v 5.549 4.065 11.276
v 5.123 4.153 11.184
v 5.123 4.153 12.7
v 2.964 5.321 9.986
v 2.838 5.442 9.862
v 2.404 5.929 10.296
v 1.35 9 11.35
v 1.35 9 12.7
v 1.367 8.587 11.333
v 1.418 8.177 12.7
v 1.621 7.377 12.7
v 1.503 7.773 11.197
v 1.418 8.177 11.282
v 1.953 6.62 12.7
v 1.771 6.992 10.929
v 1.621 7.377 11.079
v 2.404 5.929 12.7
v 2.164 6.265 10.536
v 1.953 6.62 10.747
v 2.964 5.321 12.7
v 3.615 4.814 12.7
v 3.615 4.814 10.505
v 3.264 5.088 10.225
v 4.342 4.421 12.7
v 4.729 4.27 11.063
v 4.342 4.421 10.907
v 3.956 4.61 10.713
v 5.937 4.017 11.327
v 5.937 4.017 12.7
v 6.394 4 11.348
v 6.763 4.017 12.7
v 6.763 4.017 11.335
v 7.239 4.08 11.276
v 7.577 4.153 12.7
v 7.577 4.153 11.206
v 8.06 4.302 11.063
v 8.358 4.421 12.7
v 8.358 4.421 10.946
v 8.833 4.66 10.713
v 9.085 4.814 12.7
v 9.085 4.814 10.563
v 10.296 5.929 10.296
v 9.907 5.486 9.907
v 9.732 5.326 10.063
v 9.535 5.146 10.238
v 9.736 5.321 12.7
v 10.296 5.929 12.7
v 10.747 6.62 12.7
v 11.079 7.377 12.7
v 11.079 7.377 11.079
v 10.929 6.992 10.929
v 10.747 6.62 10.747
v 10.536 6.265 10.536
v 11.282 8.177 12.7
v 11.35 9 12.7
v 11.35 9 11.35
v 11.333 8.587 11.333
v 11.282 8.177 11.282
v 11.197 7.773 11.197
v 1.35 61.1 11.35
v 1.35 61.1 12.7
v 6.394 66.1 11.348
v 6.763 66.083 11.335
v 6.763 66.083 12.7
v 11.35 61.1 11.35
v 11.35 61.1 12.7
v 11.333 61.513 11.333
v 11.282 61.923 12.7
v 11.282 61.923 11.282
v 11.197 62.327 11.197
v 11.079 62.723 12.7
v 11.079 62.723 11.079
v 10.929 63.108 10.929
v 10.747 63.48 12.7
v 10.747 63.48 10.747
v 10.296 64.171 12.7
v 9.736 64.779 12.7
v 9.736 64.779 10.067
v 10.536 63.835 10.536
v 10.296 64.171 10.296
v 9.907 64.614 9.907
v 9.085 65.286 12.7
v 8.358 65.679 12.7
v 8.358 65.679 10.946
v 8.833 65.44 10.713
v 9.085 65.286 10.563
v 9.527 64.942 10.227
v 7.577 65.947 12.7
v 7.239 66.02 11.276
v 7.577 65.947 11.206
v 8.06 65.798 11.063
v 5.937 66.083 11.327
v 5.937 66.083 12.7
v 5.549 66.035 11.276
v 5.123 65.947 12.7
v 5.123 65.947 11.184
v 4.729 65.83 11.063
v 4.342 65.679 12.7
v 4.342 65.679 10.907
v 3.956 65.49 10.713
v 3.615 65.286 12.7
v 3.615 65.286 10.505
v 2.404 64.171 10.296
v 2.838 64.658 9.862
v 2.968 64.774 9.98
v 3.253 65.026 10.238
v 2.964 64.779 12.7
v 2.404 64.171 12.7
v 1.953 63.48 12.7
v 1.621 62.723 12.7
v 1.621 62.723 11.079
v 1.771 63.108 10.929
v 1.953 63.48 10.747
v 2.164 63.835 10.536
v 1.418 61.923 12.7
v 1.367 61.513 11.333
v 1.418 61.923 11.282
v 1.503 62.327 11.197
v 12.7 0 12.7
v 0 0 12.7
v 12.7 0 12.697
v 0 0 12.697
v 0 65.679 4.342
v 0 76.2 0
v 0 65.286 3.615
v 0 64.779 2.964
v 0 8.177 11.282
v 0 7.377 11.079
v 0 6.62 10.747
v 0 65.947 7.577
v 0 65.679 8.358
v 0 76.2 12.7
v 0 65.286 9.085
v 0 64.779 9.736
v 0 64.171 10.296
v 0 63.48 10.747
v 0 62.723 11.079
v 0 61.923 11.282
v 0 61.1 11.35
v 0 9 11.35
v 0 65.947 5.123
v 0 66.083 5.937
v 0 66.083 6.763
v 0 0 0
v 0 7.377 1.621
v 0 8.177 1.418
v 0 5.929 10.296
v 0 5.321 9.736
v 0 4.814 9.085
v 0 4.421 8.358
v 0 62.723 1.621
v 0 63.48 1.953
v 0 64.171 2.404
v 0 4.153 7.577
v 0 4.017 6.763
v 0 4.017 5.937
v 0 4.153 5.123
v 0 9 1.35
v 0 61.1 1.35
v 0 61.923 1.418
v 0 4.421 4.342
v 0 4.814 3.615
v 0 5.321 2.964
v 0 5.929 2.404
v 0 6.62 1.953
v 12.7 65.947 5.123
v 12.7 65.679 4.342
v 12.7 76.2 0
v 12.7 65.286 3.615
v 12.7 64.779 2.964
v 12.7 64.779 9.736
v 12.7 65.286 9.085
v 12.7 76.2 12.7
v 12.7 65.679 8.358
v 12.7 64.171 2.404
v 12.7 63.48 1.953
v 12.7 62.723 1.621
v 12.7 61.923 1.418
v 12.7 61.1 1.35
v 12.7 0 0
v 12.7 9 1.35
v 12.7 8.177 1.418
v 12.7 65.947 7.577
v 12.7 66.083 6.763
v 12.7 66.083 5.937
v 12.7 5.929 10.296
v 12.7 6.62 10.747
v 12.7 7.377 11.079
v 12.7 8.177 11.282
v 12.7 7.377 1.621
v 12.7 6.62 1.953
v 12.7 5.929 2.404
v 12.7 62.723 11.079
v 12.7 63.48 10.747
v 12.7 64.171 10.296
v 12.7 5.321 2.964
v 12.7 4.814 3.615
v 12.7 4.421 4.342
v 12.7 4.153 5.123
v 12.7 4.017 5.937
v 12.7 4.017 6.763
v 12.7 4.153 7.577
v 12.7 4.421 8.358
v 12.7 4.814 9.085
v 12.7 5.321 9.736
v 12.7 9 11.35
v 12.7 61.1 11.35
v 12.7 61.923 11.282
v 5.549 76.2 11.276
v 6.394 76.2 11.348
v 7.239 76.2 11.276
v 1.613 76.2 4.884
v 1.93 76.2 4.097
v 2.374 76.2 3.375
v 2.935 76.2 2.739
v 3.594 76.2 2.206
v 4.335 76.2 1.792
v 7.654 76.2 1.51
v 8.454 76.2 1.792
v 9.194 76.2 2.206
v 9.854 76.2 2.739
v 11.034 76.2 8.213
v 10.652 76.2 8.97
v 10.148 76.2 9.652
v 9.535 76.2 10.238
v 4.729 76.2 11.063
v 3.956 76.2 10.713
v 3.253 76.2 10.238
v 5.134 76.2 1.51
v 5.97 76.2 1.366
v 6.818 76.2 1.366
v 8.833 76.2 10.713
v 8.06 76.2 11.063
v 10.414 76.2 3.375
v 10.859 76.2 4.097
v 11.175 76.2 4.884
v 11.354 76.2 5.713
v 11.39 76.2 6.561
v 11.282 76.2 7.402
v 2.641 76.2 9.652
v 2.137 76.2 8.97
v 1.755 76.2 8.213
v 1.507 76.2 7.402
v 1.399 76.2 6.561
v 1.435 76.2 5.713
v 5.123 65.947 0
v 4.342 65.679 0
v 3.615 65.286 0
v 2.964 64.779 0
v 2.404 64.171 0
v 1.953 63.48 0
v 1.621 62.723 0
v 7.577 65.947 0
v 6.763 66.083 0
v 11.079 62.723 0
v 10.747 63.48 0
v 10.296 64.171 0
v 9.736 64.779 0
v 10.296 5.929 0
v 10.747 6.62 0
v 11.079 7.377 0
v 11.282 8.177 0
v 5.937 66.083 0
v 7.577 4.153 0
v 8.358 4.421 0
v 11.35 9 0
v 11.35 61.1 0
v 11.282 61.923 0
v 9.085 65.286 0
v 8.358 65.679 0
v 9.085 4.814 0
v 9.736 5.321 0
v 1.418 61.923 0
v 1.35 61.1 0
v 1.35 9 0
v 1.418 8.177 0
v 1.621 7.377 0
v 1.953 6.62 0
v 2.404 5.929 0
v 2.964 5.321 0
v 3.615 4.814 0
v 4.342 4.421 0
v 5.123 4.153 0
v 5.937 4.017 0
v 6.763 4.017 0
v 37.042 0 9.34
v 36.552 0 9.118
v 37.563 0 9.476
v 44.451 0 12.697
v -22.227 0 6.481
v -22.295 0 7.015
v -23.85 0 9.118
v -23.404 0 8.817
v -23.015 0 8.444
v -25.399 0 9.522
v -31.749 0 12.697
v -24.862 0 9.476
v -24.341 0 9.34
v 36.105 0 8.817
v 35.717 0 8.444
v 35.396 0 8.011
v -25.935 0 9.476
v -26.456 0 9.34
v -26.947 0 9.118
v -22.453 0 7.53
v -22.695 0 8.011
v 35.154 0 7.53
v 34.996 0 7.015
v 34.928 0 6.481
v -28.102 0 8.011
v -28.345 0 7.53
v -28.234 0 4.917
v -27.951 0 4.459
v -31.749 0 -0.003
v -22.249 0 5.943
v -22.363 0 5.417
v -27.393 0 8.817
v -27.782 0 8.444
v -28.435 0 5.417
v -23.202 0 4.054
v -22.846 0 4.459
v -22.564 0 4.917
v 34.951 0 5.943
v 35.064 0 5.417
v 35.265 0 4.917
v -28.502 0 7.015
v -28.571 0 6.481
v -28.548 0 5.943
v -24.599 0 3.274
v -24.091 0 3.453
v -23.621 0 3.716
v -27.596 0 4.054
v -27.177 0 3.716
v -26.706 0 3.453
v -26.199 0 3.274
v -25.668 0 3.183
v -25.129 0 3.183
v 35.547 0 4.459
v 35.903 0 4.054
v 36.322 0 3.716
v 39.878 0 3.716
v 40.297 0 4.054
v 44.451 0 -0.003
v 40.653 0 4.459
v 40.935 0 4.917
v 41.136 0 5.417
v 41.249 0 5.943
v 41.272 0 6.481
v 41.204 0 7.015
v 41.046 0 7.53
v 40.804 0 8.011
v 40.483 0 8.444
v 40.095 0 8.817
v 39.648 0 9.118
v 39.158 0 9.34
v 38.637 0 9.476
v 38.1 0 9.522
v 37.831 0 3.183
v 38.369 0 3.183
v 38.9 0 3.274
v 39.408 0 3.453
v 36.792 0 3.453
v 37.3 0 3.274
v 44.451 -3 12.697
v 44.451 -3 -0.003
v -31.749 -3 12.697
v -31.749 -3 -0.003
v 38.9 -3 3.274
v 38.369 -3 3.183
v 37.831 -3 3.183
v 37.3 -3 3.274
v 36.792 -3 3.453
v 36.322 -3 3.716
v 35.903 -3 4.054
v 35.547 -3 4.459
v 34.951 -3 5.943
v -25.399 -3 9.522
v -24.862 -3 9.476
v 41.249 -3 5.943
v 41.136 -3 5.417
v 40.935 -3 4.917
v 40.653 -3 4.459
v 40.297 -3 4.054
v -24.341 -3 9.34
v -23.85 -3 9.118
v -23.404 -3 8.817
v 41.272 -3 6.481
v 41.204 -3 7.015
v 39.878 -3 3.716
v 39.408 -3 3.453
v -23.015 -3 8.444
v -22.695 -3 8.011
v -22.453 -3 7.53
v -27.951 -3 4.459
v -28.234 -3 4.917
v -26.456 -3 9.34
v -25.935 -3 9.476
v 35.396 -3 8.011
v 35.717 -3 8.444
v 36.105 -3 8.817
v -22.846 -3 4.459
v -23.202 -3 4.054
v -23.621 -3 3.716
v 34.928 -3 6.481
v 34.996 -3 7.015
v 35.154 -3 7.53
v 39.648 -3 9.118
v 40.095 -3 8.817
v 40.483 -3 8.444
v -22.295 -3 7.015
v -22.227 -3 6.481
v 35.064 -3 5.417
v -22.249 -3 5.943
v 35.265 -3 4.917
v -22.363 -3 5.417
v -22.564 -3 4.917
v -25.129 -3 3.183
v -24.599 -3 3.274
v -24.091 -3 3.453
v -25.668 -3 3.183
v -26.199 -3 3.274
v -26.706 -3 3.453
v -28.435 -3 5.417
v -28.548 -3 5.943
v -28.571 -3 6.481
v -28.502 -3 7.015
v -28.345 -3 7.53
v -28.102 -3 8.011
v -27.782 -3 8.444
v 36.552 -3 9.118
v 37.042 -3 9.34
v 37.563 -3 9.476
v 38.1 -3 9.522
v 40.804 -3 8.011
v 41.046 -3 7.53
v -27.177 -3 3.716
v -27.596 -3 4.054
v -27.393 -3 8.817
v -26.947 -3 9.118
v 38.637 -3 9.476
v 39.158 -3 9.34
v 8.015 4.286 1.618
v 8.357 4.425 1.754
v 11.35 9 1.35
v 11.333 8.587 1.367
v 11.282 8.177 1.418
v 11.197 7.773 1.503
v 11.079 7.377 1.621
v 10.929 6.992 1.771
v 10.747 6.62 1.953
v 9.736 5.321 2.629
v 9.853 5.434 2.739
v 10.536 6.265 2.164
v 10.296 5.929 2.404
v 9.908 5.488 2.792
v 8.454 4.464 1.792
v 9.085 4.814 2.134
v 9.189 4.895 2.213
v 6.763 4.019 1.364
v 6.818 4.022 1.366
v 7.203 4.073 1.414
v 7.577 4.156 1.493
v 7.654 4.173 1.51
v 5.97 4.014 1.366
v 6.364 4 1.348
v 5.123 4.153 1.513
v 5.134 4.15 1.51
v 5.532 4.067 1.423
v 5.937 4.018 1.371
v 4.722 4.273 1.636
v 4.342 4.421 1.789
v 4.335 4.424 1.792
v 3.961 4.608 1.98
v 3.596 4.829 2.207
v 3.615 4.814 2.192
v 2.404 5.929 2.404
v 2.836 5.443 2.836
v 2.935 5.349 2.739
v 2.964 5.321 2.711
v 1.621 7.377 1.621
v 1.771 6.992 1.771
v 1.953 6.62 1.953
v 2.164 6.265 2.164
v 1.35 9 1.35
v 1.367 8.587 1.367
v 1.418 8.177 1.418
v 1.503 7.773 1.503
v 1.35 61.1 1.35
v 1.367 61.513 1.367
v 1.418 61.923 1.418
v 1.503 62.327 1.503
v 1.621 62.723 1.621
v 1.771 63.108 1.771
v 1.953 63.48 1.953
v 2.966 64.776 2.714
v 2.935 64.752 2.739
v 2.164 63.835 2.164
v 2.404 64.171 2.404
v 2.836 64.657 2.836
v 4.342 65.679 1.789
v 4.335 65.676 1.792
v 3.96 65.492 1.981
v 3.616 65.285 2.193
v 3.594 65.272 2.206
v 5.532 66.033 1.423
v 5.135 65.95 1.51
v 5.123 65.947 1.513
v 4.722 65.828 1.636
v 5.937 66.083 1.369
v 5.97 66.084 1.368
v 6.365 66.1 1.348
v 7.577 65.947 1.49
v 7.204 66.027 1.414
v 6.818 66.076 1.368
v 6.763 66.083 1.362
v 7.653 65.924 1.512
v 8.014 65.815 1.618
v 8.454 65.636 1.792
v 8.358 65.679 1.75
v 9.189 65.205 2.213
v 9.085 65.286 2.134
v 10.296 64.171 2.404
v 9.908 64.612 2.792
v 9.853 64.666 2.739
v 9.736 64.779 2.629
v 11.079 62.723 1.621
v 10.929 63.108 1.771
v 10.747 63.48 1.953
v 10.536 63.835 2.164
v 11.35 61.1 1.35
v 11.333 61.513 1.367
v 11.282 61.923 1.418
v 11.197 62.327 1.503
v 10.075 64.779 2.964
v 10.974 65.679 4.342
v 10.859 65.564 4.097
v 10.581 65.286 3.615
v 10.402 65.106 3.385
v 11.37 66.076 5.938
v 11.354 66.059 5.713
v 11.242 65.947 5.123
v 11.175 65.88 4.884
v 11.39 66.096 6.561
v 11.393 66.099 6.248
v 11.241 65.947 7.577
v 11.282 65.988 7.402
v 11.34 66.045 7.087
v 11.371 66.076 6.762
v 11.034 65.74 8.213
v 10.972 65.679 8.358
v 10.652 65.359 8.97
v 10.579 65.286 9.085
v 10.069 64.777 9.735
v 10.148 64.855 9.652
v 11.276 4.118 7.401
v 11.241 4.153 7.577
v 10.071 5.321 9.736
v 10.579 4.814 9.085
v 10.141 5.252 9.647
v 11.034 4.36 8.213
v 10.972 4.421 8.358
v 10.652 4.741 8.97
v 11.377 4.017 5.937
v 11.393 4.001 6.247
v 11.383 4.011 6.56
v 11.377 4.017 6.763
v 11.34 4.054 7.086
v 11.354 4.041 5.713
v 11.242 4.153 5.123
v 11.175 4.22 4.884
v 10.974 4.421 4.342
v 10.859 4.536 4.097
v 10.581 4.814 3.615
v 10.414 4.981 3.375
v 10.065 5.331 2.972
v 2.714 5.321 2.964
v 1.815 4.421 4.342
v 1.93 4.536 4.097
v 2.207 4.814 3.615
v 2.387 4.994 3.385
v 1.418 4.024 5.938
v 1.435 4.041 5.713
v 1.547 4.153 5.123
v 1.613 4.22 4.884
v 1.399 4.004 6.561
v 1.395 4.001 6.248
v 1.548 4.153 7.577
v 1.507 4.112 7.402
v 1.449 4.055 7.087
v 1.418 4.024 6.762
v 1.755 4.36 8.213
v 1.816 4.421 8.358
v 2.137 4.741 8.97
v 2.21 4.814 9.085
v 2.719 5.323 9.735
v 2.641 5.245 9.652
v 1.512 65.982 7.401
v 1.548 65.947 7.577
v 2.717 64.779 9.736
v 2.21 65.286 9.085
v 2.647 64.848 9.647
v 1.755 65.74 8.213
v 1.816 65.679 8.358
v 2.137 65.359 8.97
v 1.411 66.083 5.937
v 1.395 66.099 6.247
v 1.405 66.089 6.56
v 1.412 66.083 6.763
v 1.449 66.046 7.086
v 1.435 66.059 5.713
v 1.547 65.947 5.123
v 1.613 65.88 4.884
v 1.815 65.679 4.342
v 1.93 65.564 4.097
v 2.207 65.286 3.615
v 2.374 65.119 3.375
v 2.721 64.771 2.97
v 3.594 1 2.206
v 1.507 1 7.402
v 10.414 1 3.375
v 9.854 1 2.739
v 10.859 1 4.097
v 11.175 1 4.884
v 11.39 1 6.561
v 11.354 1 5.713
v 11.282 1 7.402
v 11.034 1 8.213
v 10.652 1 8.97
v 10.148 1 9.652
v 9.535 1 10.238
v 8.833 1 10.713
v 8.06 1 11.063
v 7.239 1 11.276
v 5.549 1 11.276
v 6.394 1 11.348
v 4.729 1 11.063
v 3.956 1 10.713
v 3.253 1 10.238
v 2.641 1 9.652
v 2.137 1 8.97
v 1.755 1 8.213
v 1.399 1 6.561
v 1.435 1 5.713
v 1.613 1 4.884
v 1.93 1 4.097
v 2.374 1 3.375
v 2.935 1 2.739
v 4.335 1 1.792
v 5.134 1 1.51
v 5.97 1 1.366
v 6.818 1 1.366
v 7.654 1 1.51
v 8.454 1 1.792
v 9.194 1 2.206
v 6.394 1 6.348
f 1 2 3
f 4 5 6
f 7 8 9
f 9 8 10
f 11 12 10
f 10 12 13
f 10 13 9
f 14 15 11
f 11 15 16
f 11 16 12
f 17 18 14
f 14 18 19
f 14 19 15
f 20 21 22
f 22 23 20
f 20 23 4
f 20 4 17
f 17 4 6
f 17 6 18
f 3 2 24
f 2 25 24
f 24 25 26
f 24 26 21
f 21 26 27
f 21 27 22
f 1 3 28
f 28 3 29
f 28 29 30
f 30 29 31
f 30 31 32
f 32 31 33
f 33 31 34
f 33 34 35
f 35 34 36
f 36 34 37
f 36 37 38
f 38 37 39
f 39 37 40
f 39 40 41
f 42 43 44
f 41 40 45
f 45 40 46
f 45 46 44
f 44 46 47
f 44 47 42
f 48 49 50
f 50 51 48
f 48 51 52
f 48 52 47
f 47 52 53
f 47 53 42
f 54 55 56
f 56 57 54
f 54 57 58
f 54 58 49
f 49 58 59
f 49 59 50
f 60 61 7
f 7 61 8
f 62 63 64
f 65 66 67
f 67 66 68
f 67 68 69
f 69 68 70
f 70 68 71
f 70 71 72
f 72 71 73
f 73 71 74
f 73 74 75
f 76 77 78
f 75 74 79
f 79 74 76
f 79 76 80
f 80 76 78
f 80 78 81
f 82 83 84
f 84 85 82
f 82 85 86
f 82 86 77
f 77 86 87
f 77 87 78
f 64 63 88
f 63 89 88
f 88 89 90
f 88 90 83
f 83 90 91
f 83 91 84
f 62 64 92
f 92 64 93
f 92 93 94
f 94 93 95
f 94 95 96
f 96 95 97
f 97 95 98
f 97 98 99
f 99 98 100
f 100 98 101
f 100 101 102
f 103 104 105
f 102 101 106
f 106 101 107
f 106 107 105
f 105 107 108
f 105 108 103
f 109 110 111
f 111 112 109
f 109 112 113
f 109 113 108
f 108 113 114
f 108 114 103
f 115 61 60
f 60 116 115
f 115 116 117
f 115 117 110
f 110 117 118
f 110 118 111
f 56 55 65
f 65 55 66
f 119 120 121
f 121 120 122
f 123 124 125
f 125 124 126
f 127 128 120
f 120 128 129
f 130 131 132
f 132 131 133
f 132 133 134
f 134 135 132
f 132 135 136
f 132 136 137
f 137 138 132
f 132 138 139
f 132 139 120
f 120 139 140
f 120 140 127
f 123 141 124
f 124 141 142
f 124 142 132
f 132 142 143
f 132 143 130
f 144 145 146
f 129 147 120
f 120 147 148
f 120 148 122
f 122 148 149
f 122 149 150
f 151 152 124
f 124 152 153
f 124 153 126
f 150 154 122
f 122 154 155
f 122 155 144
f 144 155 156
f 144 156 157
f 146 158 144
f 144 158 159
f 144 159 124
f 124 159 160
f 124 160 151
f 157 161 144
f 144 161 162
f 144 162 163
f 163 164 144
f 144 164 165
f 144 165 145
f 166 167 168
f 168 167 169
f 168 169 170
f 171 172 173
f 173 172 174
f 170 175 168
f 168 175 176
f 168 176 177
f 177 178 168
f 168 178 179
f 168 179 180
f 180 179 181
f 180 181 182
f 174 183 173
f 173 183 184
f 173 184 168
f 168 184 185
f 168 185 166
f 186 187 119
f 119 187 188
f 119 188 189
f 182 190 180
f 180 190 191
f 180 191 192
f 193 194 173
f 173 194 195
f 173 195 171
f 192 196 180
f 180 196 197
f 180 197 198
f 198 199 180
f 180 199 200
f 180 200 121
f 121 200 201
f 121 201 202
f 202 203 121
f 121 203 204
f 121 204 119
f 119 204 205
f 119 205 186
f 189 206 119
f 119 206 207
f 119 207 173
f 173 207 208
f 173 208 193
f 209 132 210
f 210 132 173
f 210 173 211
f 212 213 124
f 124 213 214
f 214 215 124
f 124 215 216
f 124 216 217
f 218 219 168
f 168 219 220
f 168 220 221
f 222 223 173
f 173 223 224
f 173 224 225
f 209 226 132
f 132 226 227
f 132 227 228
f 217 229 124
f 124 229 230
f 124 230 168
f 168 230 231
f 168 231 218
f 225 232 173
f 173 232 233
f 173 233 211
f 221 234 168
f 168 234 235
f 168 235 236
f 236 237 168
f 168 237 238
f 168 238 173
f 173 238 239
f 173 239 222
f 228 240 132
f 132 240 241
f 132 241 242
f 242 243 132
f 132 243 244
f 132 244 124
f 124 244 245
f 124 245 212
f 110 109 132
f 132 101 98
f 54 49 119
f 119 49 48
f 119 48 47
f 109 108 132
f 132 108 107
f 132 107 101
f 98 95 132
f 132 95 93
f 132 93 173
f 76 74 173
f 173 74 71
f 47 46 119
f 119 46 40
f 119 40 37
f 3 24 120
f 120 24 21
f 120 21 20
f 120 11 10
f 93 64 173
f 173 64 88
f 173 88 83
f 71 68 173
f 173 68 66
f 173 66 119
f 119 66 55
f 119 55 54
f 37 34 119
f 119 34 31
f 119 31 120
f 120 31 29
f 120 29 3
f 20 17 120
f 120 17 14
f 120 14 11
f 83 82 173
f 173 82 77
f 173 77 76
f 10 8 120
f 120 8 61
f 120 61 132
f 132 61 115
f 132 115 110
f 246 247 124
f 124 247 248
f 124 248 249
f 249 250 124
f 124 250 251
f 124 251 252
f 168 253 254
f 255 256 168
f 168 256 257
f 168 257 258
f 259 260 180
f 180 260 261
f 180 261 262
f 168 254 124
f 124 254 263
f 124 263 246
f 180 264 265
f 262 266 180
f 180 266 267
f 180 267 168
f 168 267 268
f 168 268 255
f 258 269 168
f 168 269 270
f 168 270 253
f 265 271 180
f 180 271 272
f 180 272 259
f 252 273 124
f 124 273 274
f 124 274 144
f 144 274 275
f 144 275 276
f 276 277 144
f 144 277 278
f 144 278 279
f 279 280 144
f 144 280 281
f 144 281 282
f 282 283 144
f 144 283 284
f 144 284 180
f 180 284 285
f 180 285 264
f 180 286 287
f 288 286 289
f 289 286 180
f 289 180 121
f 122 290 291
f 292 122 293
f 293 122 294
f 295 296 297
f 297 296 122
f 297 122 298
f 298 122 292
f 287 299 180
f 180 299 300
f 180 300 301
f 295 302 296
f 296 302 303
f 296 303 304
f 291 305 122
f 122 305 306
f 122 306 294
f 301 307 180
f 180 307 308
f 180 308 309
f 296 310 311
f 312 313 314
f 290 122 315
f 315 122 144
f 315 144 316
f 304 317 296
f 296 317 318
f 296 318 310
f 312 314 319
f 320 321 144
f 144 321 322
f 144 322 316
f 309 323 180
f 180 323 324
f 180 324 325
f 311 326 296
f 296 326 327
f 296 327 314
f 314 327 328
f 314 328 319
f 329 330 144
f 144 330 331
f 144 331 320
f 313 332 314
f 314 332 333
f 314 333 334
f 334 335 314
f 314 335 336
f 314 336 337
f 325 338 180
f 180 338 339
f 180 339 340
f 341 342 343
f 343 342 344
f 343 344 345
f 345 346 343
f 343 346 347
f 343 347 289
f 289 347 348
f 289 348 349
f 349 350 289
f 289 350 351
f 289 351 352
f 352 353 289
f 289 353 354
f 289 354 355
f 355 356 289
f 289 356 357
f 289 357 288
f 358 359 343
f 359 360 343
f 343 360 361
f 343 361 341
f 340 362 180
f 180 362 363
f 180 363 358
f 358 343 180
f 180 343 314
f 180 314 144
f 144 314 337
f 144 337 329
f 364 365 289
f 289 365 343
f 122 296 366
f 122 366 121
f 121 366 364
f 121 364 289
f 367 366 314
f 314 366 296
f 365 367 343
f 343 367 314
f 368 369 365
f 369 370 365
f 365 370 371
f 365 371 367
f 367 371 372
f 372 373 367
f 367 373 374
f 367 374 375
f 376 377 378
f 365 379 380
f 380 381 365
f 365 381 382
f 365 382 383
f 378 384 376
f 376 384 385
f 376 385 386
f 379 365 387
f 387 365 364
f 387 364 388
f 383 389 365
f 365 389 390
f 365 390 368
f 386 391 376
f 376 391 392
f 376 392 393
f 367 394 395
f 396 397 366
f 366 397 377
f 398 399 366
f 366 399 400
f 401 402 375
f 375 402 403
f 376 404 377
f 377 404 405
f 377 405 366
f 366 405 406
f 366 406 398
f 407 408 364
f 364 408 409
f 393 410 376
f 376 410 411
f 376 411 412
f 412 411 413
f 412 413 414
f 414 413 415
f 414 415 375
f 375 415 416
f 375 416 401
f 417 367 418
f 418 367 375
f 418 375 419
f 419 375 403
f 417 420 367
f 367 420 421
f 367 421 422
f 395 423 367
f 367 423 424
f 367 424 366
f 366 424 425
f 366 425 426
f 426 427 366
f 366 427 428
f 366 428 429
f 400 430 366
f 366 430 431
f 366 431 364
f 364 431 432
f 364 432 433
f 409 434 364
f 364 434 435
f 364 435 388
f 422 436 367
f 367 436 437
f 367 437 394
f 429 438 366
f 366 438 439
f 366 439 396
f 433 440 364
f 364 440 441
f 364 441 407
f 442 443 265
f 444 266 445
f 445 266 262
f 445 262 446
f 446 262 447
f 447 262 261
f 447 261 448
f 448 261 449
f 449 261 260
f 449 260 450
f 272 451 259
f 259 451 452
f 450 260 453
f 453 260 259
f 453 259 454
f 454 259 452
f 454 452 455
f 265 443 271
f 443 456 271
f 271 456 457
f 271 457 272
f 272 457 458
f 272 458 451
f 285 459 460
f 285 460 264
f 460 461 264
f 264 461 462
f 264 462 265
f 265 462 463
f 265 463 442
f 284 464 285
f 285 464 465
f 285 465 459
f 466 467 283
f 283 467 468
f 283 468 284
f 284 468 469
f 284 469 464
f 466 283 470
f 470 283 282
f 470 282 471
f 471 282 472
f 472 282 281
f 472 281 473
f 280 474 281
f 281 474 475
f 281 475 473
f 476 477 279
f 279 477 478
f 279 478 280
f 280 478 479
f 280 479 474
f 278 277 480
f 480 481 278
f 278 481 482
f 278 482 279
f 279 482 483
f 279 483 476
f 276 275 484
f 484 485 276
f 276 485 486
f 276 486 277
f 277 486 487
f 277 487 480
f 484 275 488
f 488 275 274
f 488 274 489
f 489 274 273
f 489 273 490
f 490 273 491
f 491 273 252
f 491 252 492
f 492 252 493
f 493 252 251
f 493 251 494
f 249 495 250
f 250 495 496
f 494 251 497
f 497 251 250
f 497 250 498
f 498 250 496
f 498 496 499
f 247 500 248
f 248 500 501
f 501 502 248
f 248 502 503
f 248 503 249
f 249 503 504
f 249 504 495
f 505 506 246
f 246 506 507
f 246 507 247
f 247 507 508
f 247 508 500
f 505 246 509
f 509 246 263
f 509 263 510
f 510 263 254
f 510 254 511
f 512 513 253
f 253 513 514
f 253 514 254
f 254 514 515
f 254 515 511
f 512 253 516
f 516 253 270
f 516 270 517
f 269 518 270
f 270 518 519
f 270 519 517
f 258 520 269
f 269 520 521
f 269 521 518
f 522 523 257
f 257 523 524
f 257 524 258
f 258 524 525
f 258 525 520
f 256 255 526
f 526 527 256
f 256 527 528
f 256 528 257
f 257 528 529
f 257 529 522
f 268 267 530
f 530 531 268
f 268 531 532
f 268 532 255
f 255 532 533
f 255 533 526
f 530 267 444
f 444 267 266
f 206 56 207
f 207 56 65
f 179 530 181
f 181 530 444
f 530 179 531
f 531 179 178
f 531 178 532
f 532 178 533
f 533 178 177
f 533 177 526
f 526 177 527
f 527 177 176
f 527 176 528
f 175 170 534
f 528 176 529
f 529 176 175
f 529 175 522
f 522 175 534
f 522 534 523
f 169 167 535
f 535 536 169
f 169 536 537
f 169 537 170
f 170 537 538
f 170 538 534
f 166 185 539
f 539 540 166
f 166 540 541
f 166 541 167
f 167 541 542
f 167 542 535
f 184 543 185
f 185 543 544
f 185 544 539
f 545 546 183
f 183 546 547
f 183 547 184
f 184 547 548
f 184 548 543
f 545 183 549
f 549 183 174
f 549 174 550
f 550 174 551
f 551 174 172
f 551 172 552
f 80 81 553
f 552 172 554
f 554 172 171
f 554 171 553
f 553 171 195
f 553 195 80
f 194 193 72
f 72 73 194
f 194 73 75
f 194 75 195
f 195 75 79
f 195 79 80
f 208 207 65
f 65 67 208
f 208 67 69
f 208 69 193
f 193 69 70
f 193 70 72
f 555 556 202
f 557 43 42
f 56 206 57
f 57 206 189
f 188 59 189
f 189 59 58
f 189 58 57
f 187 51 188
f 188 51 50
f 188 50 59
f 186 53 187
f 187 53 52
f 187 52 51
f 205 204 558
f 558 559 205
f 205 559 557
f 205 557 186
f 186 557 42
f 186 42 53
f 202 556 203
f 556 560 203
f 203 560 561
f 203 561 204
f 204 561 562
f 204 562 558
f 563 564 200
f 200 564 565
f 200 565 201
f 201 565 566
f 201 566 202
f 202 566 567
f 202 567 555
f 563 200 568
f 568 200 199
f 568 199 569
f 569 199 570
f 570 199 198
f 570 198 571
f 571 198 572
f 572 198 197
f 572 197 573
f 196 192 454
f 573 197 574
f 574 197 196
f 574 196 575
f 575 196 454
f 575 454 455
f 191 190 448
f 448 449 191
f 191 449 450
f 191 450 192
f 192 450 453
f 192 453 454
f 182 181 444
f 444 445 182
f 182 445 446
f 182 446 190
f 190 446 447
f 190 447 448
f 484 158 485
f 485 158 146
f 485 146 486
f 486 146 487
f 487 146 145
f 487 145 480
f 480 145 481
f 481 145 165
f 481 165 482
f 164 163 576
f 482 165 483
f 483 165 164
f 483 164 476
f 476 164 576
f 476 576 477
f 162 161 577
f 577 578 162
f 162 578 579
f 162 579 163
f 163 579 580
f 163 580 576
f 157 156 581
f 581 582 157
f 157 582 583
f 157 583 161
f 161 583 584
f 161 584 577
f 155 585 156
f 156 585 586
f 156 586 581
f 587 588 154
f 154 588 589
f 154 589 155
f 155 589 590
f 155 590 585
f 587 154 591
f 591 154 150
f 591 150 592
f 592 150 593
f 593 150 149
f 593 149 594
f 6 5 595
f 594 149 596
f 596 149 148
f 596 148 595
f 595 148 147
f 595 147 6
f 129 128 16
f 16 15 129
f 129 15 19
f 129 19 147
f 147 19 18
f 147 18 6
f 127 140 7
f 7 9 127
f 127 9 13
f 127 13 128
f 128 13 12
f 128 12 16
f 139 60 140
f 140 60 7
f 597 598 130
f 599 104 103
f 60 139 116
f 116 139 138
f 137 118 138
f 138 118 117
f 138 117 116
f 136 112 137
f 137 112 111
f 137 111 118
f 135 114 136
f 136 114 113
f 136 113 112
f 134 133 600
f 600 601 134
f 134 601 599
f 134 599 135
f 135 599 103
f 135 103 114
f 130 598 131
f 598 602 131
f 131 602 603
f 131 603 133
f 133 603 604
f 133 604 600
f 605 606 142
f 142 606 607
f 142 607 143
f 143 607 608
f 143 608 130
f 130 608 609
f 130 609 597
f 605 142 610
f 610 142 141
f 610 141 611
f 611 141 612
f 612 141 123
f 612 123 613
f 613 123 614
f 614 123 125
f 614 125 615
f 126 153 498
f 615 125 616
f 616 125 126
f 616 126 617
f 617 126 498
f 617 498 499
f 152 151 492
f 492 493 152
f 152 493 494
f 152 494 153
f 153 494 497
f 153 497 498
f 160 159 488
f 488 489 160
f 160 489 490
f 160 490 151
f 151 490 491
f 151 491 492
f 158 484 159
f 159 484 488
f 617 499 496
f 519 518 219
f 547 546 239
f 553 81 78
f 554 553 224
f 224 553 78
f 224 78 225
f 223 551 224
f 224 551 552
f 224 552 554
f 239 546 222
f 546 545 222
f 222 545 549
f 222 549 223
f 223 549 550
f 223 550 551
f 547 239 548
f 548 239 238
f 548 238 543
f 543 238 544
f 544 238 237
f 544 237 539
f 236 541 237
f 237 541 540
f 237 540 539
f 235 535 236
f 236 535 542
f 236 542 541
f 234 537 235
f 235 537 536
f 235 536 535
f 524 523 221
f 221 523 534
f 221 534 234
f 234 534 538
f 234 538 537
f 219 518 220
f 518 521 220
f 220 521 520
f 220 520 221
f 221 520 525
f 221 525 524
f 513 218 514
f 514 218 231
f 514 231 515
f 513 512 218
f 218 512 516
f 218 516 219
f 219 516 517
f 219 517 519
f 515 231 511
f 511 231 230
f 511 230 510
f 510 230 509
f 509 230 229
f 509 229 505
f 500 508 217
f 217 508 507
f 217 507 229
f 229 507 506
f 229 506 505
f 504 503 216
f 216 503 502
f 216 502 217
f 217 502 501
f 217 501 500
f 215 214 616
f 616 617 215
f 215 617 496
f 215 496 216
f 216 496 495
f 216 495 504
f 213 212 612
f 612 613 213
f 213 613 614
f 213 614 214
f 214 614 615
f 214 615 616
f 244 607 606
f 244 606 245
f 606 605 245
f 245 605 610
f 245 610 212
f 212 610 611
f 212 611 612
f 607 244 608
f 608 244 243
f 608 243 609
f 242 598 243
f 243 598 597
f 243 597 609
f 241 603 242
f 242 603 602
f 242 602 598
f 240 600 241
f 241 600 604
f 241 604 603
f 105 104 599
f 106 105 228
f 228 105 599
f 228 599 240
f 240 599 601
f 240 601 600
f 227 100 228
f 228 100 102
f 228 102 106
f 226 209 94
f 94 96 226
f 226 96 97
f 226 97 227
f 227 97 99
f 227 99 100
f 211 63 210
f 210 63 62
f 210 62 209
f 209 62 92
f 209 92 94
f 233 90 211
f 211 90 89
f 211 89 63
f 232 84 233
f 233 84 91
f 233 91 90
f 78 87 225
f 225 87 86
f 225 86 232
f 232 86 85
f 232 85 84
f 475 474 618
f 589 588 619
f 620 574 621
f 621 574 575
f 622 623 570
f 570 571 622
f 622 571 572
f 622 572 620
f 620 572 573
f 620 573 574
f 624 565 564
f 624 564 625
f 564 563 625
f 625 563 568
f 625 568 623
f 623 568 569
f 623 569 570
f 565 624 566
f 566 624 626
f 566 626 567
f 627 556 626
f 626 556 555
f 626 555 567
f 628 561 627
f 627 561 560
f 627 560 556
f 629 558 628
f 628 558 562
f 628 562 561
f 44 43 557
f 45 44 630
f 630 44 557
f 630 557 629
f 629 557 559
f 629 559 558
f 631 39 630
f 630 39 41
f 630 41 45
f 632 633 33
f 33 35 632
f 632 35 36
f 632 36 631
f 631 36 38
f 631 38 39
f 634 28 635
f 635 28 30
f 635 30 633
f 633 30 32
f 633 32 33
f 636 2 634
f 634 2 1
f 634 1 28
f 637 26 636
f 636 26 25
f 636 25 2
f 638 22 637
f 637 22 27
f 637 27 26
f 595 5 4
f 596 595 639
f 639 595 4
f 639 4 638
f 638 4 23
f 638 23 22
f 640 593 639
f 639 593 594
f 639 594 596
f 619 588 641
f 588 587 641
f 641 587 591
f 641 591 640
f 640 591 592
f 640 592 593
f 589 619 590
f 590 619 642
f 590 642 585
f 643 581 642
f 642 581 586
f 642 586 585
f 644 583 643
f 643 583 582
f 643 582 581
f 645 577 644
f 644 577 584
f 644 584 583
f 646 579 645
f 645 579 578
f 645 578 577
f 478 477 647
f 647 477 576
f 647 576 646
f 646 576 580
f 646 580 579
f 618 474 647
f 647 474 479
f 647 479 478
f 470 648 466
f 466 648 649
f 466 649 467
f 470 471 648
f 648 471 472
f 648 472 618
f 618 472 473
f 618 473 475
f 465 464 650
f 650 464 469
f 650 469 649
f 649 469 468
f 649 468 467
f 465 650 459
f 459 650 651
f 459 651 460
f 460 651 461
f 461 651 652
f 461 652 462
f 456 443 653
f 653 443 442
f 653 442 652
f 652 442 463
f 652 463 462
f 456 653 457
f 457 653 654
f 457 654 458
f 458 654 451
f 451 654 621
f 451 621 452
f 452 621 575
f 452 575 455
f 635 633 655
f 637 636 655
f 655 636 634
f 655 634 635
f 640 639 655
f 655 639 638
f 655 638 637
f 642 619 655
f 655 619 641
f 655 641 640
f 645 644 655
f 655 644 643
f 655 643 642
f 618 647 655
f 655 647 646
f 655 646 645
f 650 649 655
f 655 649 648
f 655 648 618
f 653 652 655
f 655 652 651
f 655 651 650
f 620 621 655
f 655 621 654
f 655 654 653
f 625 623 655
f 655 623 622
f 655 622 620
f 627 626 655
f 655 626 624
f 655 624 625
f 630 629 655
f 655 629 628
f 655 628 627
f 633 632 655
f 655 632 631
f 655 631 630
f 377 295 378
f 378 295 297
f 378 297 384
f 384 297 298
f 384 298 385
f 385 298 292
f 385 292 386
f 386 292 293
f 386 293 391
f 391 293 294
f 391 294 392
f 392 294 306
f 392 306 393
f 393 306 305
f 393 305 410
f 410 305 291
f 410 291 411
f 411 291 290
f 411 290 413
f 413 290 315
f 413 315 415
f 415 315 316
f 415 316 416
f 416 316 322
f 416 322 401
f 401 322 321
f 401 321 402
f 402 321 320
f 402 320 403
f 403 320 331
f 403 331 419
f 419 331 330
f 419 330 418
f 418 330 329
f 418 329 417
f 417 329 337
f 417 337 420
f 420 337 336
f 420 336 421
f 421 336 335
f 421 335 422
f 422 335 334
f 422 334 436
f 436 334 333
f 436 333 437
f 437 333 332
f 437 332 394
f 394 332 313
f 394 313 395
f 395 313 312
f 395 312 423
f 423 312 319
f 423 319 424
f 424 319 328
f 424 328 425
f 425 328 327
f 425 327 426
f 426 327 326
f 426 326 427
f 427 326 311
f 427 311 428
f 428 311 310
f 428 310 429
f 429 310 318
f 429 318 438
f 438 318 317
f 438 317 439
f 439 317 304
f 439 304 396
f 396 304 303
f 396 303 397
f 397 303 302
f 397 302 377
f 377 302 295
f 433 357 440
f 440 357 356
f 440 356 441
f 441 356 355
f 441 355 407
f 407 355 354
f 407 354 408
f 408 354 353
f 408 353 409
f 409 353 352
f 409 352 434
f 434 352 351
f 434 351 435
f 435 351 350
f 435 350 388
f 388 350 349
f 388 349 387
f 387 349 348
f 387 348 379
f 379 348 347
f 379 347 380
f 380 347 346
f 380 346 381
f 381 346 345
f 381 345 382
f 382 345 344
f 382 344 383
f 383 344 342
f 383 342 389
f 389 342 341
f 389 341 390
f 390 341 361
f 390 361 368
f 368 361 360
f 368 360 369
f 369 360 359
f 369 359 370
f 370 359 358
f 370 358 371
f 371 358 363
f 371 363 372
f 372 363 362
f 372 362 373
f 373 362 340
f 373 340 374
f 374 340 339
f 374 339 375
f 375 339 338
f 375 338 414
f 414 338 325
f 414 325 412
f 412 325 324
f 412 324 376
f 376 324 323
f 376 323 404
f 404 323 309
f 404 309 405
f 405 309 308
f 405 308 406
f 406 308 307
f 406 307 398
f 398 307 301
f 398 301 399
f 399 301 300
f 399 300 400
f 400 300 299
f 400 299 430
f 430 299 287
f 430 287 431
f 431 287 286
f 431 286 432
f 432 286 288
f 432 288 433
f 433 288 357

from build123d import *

# Parameters (mm, degrees)
SKETCH1_W           = 12.7
SKETCH1_H           = 76.2
BOSS_EXTRUDE1_DEPTH = 12.7
SKETCH4_W           = 76.2
SKETCH4_H           = 12.7
BOSS_EXTRUDE3_DEPTH = 3
CUT_EXTRUDE5_DEPTH  = 12.7
CUT_EXTRUDE6_DEPTH  = 12.7
SKETCH16_R          = 5
CUT_EXTRUDE8_DEPTH  = 75.2
SKETCH17_R          = 3.175
CUT_EXTRUDE9_DEPTH  = 3
SKETCH18_R          = 3.175
CUT_EXTRUDE10_DEPTH = 3


with BuildPart() as part:
    # Sketch1 → Boss-Extrude1 (new body)
    with BuildSketch(Plane.XY):
        with Locations((6.35, 38.1)):
            Rectangle(SKETCH1_W, SKETCH1_H)
    extrude(amount=BOSS_EXTRUDE1_DEPTH)

    # Sketch4 → Boss-Extrude3 (add)
    with BuildSketch(Plane(origin=(0, 0, 0), x_dir=(-1, 0, 0), z_dir=(0, -1, 0))):
        with Locations((-6.351309366, -6.3465887)):
            Rectangle(SKETCH4_W, SKETCH4_H)
    extrude(amount=BOSS_EXTRUDE3_DEPTH)

    # Sketch12 → Cut-Extrude5 (cut)
    with BuildSketch(Plane.XY.offset(12.7)):
        with BuildLine():
            Line((1.35, 9), (1.35, 61.1))
            ThreePointArc((1.35, 61.1), (6.35, 66.1), (11.35, 61.1))
            Line((11.35, 61.1), (11.35, 9))
            ThreePointArc((11.35, 9), (6.35, 4), (1.35, 9))
        make_face()
    extrude(amount=-CUT_EXTRUDE5_DEPTH, mode=Mode.SUBTRACT)

    # Sketch13 → Cut-Extrude6 (cut)
    with BuildSketch(Plane(origin=(12.7, 0, 0), x_dir=(0, 0, -1), z_dir=(1, 0, 0))):
        with BuildLine():
            Line((-11.35, 9), (-11.35, 61.1))
            ThreePointArc((-11.35, 61.1), (-6.35, 66.1), (-1.35, 61.1))
            Line((-1.35, 61.1), (-1.35, 9))
            ThreePointArc((-1.35, 9), (-6.35, 4), (-11.35, 9))
        make_face()
    extrude(amount=-CUT_EXTRUDE6_DEPTH, mode=Mode.SUBTRACT)

    # Sketch16 → Cut-Extrude8 (cut)
    with BuildSketch(Plane(origin=(0, 76.2, 0), x_dir=(1, 0, 0), z_dir=(0, 1, 0))):
        with Locations(Location((6.394331047, -6.34829435, 0), (0, 0, 270))):
            Circle(SKETCH16_R)
    extrude(amount=-CUT_EXTRUDE8_DEPTH, mode=Mode.SUBTRACT)

    # Sketch17 → Cut-Extrude9 (cut)
    with BuildSketch(Plane(origin=(0, 0, 0), x_dir=(1, 0, 0), z_dir=(0, 1, 0))):
        with Locations(Location((-25.398690634, -6.3465887, 0), (0, 0, 270))):
            Circle(SKETCH17_R)
    extrude(amount=-CUT_EXTRUDE9_DEPTH, mode=Mode.SUBTRACT)

    # Sketch18 → Cut-Extrude10 (cut)
    with BuildSketch(Plane(origin=(0, 0, 0), x_dir=(1, 0, 0), z_dir=(0, 1, 0))):
        with Locations(Location((38.1, -6.3465887, 0), (0, 0, 270))):
            Circle(SKETCH18_R)
    extrude(amount=-CUT_EXTRUDE10_DEPTH, mode=Mode.SUBTRACT)


solid = part.part
